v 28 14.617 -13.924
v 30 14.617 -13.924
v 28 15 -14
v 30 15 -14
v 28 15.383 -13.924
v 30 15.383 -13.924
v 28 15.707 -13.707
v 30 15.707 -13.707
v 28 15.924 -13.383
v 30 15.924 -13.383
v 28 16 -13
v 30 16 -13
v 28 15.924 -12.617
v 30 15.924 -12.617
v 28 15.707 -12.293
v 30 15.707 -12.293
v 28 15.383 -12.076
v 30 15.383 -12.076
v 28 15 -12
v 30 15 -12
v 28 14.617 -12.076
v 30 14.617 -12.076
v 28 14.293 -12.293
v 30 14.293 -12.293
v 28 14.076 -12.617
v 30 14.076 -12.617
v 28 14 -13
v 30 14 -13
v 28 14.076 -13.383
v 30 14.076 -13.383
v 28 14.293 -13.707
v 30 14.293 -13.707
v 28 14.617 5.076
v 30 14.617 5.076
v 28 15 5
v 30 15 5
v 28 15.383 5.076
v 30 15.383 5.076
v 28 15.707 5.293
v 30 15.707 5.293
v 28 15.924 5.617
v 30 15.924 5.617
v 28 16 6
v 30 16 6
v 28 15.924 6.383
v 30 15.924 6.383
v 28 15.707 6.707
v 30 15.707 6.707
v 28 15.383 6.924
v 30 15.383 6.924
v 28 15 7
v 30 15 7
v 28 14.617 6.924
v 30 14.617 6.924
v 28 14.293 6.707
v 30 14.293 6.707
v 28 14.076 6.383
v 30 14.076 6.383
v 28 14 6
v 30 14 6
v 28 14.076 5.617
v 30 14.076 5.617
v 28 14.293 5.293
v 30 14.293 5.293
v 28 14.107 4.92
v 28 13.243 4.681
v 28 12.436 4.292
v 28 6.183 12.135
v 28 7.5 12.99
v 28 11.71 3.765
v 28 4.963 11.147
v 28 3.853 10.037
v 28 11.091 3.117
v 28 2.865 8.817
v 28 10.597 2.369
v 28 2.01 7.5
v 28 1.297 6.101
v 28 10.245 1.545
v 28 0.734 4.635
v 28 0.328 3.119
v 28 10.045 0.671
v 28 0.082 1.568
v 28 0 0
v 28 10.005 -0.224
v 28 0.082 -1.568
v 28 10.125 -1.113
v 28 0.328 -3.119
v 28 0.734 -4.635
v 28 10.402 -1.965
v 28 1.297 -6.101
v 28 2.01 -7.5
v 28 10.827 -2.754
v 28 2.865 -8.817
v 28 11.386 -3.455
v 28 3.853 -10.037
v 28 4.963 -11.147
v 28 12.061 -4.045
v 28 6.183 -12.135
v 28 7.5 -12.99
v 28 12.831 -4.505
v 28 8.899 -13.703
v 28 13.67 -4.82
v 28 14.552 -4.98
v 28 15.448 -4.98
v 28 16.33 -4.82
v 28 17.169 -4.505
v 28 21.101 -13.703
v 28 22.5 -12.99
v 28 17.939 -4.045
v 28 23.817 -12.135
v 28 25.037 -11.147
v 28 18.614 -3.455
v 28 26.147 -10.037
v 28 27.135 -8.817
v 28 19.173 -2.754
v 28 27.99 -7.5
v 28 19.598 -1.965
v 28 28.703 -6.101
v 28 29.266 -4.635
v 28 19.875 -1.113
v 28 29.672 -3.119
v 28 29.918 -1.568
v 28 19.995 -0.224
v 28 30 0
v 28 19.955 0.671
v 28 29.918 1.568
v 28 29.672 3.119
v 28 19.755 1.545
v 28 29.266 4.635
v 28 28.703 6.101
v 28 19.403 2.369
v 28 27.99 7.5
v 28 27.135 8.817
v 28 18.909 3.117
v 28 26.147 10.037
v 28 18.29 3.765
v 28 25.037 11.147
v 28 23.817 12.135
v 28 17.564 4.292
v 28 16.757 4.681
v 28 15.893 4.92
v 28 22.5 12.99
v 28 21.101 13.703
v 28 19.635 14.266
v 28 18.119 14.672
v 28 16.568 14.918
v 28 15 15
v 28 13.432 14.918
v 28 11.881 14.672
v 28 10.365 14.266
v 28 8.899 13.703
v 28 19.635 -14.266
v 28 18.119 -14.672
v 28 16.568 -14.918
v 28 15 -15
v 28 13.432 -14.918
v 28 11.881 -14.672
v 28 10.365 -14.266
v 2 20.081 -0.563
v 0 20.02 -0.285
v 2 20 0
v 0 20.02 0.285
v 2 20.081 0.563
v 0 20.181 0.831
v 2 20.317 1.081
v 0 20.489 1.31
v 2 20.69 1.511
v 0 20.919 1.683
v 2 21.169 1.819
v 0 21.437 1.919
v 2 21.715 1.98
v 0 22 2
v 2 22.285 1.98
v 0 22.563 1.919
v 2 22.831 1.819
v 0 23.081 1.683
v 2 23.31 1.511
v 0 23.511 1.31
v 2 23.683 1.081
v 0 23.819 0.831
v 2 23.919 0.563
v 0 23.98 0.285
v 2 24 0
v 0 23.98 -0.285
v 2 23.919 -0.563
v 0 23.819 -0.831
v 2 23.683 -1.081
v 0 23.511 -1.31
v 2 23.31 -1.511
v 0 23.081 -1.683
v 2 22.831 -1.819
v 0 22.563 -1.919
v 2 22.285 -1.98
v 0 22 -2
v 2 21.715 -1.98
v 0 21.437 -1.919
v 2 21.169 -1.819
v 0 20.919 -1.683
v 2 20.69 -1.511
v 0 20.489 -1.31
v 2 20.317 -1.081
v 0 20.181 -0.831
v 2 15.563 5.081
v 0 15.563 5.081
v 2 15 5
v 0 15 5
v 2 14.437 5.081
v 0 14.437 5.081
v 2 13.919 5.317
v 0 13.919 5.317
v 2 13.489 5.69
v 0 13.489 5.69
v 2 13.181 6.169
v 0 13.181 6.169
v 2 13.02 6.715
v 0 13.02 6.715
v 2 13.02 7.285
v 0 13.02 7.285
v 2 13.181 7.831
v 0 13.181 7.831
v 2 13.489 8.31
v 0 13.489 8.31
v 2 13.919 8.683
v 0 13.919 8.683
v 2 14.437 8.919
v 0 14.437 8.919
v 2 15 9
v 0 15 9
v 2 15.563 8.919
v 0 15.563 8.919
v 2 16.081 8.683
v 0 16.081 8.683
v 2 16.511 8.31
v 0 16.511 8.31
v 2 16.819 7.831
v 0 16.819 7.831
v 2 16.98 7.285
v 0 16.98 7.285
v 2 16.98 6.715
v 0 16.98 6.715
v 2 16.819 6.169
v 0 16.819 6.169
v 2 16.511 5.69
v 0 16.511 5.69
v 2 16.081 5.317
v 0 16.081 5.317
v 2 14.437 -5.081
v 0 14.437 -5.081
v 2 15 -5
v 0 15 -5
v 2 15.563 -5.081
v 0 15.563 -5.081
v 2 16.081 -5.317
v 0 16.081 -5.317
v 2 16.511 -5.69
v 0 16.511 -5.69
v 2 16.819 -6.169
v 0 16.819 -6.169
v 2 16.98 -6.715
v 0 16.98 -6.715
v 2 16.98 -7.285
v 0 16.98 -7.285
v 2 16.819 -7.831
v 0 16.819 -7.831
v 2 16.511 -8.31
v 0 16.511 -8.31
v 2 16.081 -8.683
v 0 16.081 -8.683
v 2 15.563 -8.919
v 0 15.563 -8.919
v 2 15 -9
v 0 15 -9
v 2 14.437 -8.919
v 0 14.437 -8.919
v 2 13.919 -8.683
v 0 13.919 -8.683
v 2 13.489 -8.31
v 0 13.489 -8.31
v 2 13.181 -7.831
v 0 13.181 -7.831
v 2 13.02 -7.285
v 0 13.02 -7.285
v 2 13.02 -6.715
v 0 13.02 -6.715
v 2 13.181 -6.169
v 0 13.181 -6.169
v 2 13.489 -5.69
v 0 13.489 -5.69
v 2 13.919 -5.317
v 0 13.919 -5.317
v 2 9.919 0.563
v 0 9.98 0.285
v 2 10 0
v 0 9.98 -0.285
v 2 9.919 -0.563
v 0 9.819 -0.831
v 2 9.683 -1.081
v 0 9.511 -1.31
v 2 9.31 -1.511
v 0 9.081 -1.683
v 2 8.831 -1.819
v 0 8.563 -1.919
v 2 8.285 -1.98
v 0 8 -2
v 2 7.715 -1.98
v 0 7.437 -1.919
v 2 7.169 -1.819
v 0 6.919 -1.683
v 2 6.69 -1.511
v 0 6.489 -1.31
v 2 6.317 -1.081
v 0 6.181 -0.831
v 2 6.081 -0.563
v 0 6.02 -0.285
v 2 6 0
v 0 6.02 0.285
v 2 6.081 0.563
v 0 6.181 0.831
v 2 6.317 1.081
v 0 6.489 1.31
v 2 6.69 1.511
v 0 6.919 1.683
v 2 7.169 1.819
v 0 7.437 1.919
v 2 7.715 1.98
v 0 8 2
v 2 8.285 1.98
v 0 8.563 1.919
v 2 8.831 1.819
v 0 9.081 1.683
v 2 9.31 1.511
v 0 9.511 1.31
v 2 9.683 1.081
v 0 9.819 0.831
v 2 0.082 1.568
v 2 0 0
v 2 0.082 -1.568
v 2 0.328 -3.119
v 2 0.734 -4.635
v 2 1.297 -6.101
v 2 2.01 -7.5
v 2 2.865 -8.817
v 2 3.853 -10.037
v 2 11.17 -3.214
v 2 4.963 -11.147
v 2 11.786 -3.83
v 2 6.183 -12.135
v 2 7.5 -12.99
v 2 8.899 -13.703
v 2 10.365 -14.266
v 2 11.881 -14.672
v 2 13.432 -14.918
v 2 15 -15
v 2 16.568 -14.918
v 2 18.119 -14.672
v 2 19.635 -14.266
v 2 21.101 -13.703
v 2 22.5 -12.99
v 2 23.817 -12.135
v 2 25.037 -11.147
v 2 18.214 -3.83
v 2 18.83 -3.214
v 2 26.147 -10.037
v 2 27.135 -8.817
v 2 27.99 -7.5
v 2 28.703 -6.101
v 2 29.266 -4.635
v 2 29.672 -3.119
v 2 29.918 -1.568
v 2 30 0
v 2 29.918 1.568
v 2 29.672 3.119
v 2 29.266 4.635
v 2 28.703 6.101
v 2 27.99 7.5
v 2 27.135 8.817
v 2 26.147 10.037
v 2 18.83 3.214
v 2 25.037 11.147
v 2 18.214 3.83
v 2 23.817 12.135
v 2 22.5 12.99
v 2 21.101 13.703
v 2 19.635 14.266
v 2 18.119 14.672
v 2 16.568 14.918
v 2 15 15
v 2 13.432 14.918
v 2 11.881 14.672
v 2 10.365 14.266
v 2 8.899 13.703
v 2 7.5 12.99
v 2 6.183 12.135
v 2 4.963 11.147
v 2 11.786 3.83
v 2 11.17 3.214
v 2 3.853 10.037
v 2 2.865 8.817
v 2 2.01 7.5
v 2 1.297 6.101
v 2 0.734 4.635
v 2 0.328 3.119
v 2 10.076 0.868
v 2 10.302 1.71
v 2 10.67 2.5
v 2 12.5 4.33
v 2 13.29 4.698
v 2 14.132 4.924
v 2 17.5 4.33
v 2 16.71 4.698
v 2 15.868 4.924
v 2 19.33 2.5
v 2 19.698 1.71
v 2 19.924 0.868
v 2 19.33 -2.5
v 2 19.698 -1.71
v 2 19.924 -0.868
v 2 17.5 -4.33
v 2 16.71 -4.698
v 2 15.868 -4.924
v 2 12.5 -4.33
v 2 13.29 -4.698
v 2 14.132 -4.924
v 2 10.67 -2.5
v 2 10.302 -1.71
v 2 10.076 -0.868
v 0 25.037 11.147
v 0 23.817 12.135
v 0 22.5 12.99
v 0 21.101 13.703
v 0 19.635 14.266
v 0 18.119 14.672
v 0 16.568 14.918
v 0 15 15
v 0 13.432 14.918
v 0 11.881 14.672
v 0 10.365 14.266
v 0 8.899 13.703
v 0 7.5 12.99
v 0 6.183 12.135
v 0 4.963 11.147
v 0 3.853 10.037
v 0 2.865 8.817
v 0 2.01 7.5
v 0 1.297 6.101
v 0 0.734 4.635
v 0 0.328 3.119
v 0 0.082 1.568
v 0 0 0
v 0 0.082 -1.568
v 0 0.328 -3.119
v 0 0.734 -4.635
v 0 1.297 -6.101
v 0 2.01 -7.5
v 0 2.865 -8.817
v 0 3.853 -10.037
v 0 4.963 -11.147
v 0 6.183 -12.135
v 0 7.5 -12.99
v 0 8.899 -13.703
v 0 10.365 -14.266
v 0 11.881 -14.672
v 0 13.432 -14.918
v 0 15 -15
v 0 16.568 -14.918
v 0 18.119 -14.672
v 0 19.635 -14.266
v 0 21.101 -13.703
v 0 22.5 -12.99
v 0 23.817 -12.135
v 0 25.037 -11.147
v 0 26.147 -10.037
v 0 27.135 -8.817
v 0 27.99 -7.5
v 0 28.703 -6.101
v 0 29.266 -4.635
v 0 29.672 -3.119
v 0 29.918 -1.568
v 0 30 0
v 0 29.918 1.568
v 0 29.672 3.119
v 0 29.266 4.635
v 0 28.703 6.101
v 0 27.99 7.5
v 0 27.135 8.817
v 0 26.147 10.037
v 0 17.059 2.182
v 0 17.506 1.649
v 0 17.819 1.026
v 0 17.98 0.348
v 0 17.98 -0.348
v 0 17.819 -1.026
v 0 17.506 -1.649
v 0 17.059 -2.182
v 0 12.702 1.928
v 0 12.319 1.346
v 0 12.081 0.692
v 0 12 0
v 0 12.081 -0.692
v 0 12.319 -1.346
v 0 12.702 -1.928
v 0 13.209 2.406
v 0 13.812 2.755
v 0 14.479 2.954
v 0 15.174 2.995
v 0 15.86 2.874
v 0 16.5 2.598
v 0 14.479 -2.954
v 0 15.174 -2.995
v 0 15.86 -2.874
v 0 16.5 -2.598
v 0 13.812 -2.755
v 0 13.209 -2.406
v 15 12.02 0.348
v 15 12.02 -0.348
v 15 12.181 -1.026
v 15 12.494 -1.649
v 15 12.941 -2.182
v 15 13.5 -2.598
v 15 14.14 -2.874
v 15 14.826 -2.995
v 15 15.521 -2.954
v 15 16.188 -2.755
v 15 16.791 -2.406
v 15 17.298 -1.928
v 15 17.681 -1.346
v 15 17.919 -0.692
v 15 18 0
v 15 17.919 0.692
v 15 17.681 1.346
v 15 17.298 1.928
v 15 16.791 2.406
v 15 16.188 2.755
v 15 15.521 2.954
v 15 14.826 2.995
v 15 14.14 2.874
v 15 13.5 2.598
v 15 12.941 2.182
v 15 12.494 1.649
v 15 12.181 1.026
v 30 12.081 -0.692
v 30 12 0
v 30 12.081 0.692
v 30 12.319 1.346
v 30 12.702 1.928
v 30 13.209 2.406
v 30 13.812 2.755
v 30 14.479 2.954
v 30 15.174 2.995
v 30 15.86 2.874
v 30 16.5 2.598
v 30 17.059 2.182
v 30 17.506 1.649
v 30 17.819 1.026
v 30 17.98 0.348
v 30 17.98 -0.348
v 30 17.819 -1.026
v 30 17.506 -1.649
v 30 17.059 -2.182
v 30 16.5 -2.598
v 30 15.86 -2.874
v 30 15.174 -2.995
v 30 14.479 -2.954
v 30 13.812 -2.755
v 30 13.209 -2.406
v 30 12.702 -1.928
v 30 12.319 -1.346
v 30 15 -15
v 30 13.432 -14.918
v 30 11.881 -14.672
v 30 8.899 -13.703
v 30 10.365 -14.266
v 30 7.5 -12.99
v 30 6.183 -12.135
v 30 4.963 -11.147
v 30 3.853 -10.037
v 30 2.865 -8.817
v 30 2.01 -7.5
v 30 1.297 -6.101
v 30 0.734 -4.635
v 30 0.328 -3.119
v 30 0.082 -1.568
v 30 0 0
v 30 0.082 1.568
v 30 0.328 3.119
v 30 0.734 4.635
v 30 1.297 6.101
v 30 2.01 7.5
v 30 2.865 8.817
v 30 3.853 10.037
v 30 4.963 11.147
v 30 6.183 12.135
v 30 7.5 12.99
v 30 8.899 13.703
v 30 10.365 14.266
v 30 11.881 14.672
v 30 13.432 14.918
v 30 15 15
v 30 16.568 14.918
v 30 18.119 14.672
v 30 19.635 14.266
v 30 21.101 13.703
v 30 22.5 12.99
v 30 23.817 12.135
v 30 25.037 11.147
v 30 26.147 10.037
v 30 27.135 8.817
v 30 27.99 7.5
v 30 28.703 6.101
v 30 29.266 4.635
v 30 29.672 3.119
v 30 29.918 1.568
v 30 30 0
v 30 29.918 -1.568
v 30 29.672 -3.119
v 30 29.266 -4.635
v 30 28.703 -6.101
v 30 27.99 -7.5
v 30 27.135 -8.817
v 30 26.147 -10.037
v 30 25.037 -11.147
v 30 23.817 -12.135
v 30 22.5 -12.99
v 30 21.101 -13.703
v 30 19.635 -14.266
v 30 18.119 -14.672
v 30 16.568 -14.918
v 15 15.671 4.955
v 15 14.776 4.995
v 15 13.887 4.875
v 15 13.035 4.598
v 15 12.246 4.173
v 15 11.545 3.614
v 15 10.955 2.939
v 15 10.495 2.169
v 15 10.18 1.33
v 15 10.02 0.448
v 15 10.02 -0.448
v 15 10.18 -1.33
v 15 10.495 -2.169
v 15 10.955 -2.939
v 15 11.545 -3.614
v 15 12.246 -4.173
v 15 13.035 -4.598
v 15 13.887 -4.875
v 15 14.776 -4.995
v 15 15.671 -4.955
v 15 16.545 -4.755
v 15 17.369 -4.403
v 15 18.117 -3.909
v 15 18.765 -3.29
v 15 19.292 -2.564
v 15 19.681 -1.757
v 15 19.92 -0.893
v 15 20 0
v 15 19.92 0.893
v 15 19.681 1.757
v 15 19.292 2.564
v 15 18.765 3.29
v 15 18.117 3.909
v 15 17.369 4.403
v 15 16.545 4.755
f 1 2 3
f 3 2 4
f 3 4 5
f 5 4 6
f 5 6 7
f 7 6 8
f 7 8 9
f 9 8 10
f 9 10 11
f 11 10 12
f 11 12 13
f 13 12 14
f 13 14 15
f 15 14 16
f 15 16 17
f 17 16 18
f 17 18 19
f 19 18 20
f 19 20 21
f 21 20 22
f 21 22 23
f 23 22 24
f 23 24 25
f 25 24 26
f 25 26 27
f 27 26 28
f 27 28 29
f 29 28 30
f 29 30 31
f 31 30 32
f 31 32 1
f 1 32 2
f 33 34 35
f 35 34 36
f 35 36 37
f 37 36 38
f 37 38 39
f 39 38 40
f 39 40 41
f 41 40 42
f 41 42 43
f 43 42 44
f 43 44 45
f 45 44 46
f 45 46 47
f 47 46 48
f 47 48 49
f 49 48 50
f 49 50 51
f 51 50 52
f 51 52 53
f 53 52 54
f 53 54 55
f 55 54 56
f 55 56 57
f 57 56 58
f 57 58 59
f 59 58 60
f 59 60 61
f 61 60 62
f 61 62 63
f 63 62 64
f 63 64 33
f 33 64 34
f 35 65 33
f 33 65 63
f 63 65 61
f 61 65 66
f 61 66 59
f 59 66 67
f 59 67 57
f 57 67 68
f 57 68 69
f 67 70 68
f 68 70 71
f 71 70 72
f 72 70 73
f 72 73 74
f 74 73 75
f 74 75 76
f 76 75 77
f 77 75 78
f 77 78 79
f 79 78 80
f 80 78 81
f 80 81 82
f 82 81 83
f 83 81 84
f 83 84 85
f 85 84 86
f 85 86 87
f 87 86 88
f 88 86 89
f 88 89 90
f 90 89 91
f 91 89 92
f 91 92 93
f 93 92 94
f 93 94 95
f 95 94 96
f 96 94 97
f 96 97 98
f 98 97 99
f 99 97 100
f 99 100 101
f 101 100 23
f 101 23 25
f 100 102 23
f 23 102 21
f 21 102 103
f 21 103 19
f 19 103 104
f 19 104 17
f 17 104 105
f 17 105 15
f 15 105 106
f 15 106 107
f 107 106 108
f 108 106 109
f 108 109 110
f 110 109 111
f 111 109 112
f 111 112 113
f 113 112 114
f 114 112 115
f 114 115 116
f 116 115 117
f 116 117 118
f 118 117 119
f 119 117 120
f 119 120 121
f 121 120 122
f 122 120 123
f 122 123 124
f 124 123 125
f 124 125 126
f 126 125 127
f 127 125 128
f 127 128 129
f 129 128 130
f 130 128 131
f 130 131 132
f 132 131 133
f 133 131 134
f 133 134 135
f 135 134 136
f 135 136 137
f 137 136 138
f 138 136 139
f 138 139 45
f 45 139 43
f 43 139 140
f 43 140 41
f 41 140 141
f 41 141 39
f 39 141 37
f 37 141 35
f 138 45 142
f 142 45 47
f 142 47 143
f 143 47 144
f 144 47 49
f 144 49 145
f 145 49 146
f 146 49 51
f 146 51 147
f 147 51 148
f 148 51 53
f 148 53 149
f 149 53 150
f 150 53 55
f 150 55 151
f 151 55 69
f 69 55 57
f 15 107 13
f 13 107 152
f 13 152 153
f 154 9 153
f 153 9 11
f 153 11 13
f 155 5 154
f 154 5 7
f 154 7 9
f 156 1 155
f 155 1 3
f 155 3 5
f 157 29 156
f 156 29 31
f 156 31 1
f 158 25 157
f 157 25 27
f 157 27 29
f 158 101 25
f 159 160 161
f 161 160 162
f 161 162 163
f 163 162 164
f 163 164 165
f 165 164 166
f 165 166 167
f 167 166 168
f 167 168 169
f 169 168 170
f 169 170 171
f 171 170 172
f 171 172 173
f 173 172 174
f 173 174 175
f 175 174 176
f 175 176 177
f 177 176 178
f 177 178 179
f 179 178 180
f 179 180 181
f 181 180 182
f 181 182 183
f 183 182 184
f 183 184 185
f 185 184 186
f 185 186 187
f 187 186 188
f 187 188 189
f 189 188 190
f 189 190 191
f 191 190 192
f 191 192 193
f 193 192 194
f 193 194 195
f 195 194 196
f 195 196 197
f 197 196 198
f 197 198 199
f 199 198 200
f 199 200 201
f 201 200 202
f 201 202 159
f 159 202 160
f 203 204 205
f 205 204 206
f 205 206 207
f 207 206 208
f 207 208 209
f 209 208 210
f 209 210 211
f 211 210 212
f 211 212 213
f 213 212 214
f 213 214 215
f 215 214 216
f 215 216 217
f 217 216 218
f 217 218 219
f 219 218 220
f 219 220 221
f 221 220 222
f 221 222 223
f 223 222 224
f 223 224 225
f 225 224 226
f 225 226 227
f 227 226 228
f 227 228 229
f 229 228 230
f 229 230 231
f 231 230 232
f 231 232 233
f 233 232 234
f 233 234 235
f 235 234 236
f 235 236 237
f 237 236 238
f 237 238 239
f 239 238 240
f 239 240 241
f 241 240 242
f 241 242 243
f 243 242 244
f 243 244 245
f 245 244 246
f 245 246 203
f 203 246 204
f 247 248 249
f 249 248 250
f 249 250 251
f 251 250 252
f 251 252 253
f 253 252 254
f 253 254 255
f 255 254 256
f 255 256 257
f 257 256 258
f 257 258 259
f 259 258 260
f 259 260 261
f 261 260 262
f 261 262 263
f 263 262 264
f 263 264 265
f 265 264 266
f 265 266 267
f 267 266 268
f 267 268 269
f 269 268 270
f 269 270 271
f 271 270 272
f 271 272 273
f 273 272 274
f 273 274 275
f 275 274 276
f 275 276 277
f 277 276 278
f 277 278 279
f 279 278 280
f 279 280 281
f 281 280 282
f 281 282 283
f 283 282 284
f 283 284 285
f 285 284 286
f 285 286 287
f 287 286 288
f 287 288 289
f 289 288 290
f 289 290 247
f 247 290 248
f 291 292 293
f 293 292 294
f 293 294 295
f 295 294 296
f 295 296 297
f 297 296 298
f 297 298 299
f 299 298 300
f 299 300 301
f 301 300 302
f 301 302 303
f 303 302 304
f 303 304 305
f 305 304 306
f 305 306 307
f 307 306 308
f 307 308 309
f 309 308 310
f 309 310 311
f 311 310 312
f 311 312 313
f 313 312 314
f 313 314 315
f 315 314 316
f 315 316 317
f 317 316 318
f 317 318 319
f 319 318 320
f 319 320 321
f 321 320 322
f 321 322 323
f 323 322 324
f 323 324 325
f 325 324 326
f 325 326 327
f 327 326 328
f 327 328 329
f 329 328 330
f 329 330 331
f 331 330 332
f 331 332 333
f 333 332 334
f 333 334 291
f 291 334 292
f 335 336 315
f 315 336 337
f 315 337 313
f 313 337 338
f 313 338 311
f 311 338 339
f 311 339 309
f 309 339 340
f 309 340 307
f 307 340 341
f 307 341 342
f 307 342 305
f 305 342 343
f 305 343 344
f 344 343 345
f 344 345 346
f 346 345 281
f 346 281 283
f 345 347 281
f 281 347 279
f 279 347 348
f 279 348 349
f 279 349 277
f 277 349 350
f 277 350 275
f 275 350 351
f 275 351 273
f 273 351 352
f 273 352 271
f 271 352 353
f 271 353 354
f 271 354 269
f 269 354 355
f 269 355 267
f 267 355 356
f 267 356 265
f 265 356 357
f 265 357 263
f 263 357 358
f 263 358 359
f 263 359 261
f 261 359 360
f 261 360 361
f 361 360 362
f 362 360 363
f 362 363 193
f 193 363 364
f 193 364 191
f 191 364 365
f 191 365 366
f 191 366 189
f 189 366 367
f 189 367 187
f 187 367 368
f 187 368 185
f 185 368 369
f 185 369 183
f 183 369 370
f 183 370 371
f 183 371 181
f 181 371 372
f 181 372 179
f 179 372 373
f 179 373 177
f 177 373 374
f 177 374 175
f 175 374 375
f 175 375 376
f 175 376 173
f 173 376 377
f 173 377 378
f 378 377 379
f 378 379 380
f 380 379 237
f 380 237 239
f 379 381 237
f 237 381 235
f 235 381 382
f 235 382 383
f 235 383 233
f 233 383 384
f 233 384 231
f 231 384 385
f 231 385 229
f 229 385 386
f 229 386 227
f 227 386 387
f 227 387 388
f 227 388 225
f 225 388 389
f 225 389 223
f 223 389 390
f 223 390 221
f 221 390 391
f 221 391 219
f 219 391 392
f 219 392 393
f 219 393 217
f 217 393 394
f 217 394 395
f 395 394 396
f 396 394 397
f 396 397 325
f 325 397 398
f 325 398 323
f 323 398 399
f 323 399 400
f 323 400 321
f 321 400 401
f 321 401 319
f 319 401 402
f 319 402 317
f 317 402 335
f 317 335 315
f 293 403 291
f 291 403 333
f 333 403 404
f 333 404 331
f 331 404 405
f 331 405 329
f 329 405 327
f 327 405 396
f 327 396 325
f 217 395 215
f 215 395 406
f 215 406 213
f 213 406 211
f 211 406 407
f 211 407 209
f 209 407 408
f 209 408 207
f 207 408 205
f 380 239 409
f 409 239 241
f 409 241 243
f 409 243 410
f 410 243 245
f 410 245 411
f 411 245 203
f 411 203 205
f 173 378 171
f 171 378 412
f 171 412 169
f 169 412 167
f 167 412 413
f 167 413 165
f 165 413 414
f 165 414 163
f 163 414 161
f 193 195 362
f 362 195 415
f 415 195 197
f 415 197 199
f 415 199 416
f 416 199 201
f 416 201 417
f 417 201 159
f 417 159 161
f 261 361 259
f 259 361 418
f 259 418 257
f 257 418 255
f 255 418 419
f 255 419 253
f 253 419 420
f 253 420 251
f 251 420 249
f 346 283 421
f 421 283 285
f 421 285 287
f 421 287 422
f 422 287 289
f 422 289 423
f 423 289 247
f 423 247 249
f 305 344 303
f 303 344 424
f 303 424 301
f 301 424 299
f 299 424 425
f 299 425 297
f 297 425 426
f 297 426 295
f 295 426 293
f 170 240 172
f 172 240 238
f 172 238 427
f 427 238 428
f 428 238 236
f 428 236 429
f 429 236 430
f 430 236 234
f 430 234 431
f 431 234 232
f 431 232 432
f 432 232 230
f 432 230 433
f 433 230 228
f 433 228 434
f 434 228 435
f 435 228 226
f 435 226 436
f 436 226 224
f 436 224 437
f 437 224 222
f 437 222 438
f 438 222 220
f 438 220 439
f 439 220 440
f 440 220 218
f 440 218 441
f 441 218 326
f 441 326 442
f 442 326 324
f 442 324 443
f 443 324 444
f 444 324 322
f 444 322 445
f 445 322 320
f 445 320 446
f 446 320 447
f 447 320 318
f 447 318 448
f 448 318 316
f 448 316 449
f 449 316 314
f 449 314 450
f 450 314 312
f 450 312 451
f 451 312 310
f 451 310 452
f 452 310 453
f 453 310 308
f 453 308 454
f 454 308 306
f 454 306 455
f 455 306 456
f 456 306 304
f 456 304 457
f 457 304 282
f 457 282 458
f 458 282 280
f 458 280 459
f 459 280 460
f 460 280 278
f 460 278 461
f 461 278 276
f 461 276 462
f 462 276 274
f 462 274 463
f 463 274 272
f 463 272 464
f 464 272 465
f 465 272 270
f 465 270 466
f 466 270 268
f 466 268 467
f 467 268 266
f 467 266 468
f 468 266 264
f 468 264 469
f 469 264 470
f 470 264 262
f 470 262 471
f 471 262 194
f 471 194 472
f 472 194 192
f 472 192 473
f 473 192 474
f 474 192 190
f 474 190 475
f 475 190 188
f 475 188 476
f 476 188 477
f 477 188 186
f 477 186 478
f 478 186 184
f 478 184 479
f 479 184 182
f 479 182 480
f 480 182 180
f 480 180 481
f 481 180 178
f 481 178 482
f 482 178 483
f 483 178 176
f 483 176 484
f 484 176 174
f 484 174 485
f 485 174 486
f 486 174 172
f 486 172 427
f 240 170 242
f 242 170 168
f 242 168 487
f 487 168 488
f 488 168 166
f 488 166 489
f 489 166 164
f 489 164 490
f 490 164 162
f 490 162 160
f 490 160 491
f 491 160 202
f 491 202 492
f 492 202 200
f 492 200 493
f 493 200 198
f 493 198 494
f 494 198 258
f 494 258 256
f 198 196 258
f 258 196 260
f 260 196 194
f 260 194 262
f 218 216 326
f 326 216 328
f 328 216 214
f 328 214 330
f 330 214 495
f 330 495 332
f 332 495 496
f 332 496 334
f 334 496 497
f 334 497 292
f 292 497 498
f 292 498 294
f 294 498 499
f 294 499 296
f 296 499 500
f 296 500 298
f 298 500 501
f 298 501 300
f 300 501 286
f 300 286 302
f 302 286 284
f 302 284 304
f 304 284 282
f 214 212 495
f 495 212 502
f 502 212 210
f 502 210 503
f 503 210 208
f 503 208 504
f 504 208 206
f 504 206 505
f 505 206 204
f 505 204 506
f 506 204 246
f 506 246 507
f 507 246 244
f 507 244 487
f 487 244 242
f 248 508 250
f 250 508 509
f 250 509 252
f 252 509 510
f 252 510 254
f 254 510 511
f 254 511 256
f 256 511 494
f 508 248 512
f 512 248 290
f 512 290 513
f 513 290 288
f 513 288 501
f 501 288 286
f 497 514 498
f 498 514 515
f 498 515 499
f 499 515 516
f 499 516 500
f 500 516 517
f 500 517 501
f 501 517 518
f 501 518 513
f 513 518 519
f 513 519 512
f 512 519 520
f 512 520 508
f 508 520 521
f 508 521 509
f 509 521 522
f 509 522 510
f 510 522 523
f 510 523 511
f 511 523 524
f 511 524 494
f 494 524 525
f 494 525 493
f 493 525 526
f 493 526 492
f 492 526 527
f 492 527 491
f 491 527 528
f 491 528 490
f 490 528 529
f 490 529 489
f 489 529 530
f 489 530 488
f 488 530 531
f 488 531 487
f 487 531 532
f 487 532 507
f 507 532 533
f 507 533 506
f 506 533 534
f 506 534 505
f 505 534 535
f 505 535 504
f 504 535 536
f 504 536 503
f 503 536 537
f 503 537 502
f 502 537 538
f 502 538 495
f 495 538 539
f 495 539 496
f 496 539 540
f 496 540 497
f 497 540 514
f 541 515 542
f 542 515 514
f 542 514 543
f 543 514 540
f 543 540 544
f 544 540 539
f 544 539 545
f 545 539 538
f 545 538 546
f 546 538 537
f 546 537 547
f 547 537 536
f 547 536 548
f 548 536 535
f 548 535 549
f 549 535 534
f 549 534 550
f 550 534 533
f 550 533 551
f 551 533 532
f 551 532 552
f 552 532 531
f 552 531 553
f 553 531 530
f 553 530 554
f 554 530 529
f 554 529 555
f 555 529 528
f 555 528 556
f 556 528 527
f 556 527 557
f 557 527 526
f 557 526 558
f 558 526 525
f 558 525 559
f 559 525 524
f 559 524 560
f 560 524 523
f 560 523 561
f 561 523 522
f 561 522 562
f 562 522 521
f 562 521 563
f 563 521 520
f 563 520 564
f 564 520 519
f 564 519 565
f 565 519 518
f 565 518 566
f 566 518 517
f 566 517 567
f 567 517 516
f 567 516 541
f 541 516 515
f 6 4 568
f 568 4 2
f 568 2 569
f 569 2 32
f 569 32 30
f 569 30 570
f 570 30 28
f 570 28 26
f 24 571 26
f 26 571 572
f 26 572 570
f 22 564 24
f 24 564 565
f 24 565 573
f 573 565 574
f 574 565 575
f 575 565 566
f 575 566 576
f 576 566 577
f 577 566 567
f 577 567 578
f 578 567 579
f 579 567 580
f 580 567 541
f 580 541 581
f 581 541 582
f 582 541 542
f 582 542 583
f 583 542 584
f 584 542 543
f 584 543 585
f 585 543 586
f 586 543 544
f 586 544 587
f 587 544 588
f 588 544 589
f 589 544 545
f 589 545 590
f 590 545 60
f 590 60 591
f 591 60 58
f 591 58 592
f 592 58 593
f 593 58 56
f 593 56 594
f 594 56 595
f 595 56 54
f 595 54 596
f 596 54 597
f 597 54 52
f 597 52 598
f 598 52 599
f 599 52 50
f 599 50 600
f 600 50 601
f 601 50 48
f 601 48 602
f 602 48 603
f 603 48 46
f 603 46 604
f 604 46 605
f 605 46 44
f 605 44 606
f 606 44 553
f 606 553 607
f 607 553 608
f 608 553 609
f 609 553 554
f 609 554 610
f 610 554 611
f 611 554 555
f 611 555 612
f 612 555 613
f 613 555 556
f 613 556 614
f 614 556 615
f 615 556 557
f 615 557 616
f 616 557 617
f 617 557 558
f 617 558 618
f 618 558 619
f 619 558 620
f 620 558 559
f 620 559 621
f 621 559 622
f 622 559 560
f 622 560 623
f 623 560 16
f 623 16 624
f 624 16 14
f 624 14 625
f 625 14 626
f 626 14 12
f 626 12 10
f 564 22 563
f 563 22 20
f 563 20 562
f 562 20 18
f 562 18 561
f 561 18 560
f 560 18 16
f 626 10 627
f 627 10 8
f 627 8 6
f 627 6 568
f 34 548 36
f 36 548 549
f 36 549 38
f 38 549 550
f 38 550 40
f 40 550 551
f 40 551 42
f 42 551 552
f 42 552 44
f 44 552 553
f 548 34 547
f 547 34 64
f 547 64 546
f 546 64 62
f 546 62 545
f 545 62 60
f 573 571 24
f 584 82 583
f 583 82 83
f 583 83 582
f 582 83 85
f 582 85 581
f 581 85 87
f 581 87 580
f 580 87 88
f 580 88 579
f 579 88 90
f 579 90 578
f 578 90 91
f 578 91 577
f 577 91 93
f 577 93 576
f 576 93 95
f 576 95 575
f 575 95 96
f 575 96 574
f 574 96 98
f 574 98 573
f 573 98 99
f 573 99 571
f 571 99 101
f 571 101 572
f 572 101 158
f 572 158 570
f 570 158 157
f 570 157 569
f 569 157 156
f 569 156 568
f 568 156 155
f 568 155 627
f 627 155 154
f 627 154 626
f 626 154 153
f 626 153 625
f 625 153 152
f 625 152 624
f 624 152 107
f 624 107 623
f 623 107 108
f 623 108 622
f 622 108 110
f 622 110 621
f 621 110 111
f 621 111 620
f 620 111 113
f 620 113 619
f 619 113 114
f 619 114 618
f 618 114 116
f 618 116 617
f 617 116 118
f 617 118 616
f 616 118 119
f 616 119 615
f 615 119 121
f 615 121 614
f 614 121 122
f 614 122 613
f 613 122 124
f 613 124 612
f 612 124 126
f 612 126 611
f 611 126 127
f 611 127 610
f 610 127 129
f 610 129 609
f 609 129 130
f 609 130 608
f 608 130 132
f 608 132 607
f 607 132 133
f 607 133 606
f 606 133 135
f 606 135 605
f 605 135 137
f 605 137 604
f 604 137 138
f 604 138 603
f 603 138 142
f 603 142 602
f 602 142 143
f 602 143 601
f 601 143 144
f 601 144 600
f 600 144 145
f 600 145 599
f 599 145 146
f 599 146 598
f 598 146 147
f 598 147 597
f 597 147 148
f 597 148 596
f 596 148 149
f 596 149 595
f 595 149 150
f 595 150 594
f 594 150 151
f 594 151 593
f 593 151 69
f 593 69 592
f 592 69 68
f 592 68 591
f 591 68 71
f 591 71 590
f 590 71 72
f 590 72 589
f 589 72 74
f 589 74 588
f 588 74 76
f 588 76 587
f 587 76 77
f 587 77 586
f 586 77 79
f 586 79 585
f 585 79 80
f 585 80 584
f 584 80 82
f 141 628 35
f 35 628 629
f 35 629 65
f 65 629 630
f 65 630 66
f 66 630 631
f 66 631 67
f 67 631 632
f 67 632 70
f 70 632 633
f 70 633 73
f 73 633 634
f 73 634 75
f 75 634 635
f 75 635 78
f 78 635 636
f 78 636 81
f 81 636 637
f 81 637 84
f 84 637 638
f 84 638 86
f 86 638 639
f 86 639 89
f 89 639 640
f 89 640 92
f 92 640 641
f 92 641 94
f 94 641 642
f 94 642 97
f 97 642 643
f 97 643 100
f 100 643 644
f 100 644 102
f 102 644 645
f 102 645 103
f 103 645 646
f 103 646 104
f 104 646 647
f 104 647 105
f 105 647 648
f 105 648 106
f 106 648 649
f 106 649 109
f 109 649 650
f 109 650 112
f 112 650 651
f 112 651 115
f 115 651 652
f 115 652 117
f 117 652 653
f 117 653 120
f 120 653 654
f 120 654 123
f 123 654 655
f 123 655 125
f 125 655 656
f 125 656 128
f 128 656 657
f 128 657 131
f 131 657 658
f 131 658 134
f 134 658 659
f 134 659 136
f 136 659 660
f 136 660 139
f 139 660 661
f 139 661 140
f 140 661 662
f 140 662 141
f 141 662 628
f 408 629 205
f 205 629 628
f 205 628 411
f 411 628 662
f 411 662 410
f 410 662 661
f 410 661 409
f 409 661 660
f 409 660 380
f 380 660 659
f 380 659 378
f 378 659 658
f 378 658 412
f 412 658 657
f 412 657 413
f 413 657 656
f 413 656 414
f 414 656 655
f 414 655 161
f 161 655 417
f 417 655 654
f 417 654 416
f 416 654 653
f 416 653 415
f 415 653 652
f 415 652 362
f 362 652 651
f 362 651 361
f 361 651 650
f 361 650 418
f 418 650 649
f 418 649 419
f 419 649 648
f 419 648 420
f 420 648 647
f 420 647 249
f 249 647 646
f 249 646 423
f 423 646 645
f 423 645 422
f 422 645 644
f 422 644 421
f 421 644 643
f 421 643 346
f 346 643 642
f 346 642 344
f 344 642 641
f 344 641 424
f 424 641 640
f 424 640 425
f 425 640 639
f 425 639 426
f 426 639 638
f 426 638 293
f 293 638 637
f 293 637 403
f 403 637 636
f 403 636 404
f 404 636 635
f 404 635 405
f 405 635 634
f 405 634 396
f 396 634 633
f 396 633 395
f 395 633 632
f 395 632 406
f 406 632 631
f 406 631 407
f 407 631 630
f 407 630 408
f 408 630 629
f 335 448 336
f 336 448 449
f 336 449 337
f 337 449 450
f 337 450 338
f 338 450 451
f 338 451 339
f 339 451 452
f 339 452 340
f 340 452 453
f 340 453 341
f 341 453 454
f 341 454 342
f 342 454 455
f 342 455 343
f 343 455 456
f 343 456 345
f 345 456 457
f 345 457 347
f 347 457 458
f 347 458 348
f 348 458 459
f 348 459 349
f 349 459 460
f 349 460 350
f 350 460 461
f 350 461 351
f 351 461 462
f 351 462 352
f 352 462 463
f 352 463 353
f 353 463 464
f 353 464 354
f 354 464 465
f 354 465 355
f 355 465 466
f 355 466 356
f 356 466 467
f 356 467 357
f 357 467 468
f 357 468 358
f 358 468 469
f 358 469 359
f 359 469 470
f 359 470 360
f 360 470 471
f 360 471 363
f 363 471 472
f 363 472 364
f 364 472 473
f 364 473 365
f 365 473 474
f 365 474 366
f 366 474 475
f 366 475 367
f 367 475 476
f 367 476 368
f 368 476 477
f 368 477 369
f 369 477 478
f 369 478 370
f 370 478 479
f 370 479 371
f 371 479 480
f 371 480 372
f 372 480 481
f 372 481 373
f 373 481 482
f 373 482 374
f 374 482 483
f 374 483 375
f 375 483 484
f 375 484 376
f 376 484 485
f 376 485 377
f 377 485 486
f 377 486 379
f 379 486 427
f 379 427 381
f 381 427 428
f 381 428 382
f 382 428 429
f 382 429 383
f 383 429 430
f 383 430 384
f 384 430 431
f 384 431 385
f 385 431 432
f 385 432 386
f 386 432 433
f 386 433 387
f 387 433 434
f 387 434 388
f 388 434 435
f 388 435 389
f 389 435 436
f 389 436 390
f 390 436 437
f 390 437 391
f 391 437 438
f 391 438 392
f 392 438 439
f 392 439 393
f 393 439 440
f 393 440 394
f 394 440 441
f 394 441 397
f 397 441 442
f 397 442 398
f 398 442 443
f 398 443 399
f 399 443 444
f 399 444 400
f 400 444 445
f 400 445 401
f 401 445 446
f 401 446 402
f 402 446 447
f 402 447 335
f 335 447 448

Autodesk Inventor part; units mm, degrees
ref_plane "YZ Plane" through (0, 0, 0) normal (1, 0, 0) x (0, 1, 0)
ref_plane "XZ Plane" through (0, 0, 0) normal (0, 1, 0) x (-1, 0, 0)
ref_plane "XY Plane" through (0, 0, 0) normal (0, 0, 1) x (1, 0, 0)
sketch "Sketch1" plane through (0, 0, 0) normal (0, 0, 1) x (1, 0, 0)
  line L0 (0, 0) -> (2, 0)
  line L1 (2, 0) -> (2, 10)
  line L2 (2, 10) -> (28, 10)
  line L3 (28, 10) -> (28, 0)
  line L4 (28, 0) -> (30, 0)
  line L5 (30, 0) -> (30, 12)
  line L6 (30, 12) -> (0, 12)
  line L7 (0, 12) -> (0, 0)
  line L8 (30, 15) -> (0, 15)
  dimension "d0" = 2
  dimension "d1" = 10
  dimension "d2" = 26
  dimension "d3" = 2
  dimension "d4" = 12
  dimension "d5" = 3
  dimension "d6" = 30
revolve "Revolution1" add sketch "Sketch1" angle 360 about axis through (30, 15, 0) along (-1, 0, 0)
sketch "Sketch2" plane through (0, 15, 0) normal (-1, 0, 0) x (0, 0, 1)
  circle A0 centre (7, 0) radius 2
  circle A1 centre (-7, 0) radius 2
  circle A2 centre (0, 7) radius 2
  circle A3 centre (0, -7) radius 2
  point P0 (0, -15)
  point P1 (0, 0)
  dimension "d8" = 4
  dimension "d10" = 4
  dimension "d13" = 4
  dimension "d14" = 4
  dimension "d17" = 7
  dimension "d18" = 7
  dimension "d19" = 7
  dimension "d20" = 7
sketch "Sketch3" plane through (0, 15, 0) normal (-1, 0, 0) x (0, 0, 1)
  point P0 (0, -15)
extrude "Extrusion1" cut sketch "Sketch2" against normal blind 2
sketch "Sketch4" plane through (30, 15, 0) normal (1, 0, 0) x (0, 0, -1)
  circle A0 centre (13, 0) radius 1
  circle A1 centre (-6, 0) radius 1
  point P0 (0, -15)
  point P1 (0, 0)
  dimension "d23" = 2
  dimension "d24" = 2
  dimension "d25" = 6
  dimension "d26" = 13
extrude "Extrusion2" cut sketch "Sketch4" against normal blind 2
properties part number "Spool1"
